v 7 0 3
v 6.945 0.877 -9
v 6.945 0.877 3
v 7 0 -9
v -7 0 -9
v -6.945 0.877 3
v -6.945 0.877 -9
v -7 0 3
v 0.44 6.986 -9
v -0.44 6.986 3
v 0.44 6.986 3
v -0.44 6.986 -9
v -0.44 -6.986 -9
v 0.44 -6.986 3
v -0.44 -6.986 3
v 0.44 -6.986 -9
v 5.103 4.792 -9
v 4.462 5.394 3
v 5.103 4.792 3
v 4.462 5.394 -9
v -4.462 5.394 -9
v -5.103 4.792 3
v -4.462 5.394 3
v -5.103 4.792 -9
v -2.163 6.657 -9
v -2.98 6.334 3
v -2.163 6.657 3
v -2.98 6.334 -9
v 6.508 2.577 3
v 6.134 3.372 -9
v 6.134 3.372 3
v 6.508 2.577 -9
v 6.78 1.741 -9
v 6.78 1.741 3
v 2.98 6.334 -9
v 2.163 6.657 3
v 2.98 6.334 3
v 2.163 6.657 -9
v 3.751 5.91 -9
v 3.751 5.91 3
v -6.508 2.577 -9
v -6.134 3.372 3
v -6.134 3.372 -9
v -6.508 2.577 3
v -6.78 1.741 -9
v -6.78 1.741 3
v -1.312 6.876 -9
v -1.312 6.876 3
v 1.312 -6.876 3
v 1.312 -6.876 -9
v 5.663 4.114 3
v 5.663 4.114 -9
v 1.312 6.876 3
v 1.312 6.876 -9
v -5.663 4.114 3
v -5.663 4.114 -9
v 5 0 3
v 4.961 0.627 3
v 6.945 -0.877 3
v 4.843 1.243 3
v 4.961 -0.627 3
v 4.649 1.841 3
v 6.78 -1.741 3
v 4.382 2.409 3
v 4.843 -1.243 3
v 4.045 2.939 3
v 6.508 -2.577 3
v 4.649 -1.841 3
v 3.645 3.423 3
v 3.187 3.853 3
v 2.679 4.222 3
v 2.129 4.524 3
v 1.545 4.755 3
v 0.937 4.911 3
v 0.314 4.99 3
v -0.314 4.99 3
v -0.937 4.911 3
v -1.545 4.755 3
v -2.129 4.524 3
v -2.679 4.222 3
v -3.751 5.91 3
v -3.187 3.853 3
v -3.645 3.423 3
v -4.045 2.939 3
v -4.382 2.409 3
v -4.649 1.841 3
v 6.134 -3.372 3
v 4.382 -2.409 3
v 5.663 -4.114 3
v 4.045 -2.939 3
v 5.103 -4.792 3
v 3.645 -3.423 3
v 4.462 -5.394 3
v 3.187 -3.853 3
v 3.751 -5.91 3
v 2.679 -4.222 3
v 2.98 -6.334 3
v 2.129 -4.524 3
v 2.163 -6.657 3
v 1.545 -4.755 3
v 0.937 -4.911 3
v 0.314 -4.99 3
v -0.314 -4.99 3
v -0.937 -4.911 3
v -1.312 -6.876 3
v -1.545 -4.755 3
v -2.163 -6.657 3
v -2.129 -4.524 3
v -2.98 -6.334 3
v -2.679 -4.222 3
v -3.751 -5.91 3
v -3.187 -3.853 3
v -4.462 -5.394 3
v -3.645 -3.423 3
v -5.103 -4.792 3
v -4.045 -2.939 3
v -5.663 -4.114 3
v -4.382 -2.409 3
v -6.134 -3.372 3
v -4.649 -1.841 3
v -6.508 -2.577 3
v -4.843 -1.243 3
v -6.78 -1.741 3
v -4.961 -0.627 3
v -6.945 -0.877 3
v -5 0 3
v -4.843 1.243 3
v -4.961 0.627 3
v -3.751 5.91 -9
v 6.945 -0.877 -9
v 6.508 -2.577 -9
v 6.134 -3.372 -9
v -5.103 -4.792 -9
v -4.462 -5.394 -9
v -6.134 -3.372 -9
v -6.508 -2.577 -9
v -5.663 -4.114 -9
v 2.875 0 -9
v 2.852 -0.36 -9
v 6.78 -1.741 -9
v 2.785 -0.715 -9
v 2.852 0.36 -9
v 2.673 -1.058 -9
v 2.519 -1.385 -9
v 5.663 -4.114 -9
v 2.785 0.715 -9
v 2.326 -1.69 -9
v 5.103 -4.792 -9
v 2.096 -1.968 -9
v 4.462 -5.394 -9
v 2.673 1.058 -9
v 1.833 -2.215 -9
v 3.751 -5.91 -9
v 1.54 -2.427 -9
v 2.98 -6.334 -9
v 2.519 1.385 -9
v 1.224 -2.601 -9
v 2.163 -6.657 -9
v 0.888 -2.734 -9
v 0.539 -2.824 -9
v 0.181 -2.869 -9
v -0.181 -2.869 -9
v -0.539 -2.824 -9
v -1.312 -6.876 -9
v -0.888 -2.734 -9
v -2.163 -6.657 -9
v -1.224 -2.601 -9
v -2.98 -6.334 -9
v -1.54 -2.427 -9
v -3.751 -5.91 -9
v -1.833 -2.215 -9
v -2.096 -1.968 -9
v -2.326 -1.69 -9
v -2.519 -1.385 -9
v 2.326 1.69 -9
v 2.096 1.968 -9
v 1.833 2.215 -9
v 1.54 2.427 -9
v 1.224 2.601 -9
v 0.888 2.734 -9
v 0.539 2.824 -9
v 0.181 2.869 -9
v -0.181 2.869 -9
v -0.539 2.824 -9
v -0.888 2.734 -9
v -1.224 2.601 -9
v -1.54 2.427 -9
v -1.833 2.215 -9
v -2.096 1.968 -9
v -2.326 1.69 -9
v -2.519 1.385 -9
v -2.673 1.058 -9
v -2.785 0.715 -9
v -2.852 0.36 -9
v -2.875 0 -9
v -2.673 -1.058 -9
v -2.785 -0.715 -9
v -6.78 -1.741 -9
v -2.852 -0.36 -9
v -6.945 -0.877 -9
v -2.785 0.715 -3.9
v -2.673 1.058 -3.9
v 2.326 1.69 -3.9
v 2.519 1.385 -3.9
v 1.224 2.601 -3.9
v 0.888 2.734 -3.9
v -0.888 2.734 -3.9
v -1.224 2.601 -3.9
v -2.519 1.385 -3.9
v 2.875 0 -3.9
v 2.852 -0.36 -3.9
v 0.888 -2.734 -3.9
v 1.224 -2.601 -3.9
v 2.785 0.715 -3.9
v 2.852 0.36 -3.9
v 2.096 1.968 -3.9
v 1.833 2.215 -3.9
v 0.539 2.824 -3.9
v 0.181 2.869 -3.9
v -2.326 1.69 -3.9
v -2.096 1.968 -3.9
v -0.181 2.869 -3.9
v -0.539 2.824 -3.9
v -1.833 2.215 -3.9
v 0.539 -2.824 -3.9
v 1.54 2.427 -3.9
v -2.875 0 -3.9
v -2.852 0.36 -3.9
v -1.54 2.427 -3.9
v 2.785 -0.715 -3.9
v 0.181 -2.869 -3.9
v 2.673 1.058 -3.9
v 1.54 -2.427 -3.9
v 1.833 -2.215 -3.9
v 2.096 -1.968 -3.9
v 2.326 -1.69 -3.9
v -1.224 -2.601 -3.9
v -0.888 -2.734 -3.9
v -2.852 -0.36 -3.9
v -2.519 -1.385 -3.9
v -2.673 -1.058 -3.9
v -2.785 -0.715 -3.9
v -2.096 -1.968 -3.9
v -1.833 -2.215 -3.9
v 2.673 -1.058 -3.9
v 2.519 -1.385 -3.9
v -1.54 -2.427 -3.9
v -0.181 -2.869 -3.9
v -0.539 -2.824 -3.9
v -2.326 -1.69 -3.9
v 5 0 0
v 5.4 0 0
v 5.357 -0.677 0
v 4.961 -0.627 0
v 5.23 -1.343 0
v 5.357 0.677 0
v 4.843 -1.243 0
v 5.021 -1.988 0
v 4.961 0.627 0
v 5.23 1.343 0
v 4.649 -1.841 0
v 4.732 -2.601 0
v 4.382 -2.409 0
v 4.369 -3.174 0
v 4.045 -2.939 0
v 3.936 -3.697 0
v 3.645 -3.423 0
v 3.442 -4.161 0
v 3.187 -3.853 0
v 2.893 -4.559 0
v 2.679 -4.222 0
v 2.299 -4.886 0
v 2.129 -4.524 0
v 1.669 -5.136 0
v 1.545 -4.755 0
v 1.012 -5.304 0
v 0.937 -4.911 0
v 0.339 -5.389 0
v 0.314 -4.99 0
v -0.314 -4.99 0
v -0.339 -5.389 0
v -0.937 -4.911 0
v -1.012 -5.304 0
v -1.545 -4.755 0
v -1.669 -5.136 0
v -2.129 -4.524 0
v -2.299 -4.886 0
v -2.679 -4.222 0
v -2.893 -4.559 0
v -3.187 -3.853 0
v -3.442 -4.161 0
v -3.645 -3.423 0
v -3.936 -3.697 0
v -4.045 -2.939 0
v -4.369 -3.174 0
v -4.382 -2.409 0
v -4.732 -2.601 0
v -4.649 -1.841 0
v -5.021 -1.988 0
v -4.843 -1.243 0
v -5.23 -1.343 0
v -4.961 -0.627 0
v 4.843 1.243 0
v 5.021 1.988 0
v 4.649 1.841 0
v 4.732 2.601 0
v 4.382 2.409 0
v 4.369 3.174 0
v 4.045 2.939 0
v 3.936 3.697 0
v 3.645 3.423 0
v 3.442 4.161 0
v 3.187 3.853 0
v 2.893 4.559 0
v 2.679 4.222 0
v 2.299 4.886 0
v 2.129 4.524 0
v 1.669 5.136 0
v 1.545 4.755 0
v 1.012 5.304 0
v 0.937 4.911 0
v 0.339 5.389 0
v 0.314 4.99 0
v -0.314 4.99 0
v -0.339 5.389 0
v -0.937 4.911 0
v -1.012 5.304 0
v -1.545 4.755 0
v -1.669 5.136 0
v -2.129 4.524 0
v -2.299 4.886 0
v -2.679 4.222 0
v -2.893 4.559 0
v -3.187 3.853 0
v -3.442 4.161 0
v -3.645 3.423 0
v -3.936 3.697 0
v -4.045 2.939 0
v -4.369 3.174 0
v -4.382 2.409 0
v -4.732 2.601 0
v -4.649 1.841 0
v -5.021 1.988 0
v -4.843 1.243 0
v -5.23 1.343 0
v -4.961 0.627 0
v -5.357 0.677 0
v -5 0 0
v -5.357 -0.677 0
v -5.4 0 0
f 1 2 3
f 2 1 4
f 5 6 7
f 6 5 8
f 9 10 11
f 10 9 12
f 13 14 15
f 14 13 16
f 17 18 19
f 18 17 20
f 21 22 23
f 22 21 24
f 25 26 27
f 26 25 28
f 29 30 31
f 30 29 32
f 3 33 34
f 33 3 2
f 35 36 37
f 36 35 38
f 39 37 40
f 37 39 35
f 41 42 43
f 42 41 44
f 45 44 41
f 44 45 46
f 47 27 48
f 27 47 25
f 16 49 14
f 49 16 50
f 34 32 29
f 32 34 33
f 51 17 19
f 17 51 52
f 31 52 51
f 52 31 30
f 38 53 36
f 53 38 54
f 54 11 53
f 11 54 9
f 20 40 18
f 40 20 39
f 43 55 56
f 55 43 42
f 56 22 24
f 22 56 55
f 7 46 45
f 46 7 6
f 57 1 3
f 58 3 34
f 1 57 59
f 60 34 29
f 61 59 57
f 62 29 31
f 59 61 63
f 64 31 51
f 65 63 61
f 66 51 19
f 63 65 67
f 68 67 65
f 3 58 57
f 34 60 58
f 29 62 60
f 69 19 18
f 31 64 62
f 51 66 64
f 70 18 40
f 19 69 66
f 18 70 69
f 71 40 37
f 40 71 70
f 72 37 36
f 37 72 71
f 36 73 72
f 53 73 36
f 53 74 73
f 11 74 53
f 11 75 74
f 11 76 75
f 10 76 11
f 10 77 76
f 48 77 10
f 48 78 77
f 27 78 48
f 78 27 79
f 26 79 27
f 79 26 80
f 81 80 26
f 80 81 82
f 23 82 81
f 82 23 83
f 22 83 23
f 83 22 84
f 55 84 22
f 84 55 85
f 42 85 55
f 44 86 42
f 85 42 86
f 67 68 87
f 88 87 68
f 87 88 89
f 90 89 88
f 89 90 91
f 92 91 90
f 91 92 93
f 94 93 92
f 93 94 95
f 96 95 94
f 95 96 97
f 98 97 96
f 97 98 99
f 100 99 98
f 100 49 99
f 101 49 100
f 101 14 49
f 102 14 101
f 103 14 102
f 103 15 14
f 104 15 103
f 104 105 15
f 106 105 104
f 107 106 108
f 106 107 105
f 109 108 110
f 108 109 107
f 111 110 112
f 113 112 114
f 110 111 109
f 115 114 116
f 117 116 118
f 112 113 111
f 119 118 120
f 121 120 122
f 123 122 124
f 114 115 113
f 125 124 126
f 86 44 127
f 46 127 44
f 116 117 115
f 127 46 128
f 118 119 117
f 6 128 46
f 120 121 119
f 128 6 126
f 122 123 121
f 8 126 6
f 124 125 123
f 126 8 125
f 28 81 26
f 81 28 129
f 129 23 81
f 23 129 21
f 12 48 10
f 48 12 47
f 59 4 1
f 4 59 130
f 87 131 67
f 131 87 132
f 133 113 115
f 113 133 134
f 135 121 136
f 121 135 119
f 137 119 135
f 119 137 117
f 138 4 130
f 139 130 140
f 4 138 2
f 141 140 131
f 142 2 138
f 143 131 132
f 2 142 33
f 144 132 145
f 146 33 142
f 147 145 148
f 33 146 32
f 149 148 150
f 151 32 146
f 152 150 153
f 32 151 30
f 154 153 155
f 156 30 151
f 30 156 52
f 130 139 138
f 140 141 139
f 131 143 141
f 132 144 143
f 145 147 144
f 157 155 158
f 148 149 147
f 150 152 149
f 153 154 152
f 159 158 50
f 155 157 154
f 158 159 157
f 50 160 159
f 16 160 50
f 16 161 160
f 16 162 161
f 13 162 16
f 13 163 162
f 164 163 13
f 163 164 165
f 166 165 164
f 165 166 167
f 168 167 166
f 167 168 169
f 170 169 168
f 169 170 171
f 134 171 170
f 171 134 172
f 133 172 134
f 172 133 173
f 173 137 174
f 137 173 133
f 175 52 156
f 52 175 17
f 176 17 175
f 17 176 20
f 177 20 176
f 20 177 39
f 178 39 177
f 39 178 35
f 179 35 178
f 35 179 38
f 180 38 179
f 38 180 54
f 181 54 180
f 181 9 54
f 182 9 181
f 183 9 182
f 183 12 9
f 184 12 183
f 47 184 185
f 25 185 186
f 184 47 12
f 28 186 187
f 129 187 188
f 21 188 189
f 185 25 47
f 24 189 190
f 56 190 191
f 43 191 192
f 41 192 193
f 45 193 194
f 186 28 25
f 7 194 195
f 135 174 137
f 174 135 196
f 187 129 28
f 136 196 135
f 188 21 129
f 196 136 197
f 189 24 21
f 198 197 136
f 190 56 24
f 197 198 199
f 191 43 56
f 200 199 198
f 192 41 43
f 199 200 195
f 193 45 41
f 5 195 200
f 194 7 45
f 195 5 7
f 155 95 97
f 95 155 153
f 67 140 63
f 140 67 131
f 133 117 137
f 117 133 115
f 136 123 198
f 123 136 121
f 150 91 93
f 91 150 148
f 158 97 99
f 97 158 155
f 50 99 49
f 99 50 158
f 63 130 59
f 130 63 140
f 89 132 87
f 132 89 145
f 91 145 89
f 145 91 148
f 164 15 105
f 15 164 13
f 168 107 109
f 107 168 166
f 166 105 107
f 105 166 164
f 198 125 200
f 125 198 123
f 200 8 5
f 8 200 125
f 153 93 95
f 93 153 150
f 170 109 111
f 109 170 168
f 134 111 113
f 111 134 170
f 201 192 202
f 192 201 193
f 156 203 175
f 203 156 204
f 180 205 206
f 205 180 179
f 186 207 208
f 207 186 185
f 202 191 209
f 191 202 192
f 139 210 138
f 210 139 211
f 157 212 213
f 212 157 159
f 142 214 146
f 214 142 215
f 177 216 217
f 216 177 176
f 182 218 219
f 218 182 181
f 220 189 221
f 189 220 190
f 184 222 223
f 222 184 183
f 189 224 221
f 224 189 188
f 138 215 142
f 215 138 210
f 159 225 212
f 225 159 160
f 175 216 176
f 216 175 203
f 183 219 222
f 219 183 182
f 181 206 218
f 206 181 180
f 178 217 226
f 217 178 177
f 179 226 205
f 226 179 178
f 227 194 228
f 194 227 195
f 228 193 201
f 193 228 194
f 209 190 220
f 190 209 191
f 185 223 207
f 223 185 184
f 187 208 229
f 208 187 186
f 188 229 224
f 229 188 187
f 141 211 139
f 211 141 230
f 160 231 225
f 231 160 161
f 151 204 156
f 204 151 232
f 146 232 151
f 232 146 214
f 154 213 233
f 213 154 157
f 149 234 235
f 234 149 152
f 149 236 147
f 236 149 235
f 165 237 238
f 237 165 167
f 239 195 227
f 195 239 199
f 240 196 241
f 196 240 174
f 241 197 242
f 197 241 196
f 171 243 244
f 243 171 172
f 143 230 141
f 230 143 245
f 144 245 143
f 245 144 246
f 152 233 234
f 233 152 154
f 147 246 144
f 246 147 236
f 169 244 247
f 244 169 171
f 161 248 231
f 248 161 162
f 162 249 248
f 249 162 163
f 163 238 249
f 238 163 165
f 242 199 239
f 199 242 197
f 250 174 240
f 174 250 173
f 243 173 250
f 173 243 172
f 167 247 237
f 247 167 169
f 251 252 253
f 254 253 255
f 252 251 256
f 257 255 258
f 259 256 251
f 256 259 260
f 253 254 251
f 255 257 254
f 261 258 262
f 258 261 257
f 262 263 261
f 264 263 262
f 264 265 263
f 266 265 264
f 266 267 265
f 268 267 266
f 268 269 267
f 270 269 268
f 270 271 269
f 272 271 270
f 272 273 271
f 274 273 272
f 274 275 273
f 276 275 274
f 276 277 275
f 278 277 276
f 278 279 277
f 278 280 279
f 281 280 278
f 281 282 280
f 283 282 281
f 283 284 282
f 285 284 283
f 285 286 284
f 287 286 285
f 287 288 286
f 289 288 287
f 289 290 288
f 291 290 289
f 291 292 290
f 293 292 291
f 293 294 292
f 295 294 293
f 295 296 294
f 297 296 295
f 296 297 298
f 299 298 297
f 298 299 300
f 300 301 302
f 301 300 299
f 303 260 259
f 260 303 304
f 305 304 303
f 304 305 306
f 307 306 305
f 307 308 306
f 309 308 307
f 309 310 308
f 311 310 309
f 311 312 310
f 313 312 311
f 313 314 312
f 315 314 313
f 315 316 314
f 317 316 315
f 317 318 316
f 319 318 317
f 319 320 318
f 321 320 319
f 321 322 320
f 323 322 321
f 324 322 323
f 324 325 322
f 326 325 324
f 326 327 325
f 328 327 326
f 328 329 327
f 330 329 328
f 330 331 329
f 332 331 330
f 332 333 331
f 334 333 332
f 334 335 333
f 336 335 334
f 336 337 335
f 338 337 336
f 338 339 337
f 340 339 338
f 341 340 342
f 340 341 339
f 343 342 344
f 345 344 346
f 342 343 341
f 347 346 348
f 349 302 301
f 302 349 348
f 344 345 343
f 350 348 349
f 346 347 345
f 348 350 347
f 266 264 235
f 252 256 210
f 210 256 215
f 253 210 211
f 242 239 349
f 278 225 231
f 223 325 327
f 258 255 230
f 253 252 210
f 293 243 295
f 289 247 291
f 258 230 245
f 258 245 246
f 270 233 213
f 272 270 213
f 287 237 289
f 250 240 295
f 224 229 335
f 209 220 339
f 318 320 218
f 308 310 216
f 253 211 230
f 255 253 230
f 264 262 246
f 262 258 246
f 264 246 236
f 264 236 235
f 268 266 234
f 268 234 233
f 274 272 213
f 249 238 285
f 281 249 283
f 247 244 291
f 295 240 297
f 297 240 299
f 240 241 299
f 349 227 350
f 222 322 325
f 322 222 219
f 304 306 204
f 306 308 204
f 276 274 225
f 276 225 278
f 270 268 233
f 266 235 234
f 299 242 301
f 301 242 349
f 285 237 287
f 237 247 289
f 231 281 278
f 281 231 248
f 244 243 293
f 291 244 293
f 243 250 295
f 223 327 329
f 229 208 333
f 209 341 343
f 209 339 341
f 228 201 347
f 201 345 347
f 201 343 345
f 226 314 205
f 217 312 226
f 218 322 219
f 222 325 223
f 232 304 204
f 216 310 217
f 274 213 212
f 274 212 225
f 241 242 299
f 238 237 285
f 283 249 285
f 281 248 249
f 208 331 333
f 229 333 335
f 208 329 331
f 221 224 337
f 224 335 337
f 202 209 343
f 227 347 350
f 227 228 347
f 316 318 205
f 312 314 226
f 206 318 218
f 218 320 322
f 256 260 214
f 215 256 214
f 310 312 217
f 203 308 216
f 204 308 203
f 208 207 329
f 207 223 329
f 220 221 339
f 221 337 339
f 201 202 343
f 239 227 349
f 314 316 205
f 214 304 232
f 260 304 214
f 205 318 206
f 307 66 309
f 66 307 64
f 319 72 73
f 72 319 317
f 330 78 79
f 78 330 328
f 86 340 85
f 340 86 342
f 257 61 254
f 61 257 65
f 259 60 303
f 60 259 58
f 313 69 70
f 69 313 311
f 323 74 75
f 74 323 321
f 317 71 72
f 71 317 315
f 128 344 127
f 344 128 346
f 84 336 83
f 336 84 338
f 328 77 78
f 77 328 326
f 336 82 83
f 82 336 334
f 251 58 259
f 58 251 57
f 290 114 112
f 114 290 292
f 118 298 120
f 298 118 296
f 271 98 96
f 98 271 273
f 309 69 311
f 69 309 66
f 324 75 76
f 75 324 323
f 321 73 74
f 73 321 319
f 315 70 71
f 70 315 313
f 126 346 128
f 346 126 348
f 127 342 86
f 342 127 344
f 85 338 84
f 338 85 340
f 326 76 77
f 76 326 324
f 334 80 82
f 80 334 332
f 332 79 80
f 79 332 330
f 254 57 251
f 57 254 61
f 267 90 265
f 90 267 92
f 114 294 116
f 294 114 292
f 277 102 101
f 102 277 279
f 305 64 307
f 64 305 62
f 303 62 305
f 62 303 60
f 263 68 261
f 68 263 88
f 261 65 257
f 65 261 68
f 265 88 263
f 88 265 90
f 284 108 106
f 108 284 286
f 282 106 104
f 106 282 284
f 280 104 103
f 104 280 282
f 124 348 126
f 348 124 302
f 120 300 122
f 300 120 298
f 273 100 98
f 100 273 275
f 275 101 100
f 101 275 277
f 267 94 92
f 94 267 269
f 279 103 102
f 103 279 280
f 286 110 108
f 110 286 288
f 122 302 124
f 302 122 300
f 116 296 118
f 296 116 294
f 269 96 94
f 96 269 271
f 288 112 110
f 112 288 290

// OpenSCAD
$fn = 50;

difference() {
	union() {
		translate(v = [0, 0, -9.0]) {
			cylinder(h = 12, r = 7.0);
		}
		#translate(v = [0, 0, -12.0]) {
			cylinder(h = 12, r = 2.875);
		}
	}
	union() {
		translate(v = [0, 0, 0]) {
			rotate(a = [0, 0, 0]) {
				difference() {
					union() {
						translate(v = [0, 0, -12.0]) {
							cylinder(h = 12, r = 2.6);
						}
						translate(v = [0, 0, -3.9]) {
							cylinder(h = 3.9, r1 = 2.875, r2 = 5.4);
						}
						translate(v = [0, 0, -12.0]) {
							cylinder(h = 12, r = 2.875);
						}
						translate(v = [0, 0, -12.0]) {
							cylinder(h = 12, r = 2.6);
						}
					}
					union();
				}
			}
		}
		#cylinder(h = 3, r = 5.0);
	}
}
